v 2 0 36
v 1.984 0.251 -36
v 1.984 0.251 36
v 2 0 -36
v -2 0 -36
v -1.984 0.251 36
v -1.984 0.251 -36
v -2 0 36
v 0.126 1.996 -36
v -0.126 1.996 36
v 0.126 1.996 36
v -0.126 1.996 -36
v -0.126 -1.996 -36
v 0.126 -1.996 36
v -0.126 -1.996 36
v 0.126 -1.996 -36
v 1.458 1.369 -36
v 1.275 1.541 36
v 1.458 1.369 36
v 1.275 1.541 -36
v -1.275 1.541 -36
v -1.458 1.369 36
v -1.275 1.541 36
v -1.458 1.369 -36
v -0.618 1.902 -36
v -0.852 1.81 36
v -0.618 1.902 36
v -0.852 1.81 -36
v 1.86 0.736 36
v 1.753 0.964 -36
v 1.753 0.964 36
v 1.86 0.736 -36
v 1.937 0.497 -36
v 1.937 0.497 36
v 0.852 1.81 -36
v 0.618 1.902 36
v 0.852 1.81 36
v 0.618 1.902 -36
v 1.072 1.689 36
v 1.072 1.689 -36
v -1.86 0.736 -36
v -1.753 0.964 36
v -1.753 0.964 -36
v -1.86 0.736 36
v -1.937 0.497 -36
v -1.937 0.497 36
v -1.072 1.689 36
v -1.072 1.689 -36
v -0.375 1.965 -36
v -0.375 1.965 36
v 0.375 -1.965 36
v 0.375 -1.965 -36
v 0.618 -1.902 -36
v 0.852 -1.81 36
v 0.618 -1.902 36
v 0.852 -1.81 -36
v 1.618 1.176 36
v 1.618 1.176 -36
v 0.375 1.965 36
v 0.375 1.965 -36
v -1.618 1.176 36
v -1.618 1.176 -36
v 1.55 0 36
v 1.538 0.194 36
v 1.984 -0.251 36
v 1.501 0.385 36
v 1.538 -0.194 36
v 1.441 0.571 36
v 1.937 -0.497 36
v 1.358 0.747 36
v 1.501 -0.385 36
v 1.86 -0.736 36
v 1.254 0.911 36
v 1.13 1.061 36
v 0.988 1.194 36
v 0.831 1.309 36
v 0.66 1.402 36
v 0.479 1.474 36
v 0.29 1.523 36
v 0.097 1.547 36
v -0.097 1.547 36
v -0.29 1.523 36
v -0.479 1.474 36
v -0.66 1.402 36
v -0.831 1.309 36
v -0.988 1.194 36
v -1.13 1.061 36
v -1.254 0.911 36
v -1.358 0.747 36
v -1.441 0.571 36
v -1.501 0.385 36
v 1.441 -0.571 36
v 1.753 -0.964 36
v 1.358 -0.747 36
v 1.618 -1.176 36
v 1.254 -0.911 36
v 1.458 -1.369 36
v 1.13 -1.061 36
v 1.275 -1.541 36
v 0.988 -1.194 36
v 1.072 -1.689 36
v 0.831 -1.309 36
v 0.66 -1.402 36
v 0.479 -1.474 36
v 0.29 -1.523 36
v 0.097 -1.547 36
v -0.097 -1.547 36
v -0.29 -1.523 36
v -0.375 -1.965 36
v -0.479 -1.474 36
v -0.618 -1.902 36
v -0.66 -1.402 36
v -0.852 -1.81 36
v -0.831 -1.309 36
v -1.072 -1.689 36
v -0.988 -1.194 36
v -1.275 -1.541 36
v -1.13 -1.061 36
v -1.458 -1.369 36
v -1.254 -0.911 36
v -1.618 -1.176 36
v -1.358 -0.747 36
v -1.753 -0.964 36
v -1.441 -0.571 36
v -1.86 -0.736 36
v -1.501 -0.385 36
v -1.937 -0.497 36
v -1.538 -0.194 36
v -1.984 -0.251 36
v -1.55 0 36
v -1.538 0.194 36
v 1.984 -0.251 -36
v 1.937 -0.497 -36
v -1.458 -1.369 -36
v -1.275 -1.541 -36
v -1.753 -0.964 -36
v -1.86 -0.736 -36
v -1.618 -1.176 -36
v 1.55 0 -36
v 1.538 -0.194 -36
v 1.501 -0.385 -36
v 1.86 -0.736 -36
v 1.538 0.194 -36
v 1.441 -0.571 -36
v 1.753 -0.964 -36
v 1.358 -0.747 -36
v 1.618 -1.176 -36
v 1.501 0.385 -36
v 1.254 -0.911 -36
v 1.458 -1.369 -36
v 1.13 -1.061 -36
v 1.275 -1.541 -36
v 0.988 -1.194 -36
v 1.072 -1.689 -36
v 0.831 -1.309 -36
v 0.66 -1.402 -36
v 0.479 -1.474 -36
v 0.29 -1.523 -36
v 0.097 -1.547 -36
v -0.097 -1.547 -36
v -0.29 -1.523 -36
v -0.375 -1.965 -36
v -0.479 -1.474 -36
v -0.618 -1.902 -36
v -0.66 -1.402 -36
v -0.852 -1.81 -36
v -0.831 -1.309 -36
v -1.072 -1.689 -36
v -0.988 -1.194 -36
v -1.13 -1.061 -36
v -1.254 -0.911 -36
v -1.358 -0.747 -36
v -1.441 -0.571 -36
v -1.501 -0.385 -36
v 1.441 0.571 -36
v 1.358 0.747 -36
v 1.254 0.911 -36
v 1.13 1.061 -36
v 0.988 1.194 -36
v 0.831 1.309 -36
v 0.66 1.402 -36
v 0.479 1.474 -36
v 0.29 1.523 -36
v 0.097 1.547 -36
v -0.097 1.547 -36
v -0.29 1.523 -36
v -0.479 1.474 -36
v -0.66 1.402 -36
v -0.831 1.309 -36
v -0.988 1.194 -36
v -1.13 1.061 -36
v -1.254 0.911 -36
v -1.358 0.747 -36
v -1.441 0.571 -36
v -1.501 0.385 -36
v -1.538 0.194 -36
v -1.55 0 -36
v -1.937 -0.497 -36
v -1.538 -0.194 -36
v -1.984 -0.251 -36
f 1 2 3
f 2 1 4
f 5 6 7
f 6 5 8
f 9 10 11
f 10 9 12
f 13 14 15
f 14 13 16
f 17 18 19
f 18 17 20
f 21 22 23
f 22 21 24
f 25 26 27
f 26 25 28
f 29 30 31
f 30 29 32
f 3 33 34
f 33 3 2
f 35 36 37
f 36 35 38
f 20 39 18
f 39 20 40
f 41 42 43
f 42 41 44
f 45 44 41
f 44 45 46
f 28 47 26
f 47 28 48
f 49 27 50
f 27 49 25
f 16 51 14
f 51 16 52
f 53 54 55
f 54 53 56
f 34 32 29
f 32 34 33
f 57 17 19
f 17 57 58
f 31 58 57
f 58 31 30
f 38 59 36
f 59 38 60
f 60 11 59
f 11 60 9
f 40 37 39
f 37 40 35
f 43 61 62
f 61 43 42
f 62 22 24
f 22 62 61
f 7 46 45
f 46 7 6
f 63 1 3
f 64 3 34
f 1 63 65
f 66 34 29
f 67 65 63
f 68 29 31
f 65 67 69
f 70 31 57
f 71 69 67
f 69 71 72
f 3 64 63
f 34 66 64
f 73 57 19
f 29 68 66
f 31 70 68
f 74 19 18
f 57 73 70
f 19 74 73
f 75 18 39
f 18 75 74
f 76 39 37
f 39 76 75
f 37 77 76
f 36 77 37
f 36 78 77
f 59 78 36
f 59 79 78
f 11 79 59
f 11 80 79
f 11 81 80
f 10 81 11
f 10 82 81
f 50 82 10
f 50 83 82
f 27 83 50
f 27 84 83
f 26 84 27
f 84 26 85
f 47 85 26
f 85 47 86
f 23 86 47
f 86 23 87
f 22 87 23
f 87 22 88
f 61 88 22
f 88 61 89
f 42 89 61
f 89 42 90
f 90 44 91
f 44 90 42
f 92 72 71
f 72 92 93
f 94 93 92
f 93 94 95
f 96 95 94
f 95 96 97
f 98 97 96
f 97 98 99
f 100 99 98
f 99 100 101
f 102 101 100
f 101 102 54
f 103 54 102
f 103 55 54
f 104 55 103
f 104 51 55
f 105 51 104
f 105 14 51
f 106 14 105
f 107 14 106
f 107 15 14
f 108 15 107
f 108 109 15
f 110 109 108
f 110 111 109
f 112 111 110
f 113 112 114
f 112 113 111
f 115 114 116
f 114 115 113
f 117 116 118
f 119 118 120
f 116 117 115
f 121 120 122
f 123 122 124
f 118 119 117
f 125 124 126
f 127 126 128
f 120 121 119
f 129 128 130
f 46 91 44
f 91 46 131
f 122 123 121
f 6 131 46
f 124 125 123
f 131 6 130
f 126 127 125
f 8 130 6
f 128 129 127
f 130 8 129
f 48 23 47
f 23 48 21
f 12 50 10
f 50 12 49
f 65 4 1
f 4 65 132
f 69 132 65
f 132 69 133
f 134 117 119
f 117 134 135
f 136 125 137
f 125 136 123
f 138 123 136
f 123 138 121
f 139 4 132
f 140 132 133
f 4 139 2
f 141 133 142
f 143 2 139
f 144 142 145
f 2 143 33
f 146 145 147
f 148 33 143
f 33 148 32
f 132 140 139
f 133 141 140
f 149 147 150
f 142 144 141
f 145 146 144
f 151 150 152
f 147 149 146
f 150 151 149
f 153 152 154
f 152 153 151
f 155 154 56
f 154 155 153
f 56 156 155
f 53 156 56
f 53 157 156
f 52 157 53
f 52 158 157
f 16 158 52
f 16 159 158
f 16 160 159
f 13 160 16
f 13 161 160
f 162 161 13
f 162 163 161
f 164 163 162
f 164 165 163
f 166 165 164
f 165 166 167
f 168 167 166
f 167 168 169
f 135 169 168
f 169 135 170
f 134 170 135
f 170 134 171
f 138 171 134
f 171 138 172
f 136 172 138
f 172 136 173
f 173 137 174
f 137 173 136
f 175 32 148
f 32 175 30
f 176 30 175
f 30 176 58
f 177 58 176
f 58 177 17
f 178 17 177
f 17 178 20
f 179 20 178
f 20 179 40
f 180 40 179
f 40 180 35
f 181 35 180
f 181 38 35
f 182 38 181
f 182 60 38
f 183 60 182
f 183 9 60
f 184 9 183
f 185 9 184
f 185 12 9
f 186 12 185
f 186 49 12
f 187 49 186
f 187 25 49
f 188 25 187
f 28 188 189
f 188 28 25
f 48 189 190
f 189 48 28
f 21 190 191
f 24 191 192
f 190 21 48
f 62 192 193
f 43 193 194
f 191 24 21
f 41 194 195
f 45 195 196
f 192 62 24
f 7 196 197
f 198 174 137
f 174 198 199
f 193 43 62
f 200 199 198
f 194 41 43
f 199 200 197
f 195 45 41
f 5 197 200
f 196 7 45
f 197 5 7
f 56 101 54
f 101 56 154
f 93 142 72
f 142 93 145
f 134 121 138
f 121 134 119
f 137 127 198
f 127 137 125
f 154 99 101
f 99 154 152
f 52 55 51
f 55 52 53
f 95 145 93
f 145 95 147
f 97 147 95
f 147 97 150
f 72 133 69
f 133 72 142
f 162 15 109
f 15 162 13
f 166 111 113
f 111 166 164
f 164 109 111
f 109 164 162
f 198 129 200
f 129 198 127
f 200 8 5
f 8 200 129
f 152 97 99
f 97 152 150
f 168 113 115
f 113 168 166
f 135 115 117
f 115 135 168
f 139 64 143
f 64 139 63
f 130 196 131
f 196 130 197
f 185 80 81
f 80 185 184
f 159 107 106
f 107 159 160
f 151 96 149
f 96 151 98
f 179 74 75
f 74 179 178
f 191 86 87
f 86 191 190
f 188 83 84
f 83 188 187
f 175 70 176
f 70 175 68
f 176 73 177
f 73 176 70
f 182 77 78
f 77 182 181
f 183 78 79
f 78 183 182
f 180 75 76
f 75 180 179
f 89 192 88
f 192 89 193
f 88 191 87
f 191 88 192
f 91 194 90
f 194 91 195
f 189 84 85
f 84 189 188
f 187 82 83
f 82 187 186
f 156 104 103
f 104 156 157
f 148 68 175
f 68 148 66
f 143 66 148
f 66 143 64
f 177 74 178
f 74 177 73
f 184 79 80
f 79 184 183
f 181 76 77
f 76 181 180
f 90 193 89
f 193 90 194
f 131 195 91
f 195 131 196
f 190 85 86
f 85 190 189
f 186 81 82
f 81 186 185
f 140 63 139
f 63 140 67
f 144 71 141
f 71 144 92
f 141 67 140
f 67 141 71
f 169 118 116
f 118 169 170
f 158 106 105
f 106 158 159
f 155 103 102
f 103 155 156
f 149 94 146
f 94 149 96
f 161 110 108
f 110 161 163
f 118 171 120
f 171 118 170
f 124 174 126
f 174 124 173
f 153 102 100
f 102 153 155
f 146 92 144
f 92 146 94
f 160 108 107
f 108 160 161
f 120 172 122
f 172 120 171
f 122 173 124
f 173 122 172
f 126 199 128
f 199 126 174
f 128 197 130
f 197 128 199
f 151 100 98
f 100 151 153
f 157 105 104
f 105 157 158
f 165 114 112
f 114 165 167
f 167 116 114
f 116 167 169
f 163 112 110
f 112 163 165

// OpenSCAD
$fn = 50;


difference() {
	union() {
		translate(v = [0, 0, -36.0000000000]) {
			cylinder(h = 72, r = 2.0000000000);
		}
	}
	union() {
		translate(v = [0, 0, -100.0000000000]) {
			cylinder(h = 200, r = 1.5500000000);
		}
	}
}
